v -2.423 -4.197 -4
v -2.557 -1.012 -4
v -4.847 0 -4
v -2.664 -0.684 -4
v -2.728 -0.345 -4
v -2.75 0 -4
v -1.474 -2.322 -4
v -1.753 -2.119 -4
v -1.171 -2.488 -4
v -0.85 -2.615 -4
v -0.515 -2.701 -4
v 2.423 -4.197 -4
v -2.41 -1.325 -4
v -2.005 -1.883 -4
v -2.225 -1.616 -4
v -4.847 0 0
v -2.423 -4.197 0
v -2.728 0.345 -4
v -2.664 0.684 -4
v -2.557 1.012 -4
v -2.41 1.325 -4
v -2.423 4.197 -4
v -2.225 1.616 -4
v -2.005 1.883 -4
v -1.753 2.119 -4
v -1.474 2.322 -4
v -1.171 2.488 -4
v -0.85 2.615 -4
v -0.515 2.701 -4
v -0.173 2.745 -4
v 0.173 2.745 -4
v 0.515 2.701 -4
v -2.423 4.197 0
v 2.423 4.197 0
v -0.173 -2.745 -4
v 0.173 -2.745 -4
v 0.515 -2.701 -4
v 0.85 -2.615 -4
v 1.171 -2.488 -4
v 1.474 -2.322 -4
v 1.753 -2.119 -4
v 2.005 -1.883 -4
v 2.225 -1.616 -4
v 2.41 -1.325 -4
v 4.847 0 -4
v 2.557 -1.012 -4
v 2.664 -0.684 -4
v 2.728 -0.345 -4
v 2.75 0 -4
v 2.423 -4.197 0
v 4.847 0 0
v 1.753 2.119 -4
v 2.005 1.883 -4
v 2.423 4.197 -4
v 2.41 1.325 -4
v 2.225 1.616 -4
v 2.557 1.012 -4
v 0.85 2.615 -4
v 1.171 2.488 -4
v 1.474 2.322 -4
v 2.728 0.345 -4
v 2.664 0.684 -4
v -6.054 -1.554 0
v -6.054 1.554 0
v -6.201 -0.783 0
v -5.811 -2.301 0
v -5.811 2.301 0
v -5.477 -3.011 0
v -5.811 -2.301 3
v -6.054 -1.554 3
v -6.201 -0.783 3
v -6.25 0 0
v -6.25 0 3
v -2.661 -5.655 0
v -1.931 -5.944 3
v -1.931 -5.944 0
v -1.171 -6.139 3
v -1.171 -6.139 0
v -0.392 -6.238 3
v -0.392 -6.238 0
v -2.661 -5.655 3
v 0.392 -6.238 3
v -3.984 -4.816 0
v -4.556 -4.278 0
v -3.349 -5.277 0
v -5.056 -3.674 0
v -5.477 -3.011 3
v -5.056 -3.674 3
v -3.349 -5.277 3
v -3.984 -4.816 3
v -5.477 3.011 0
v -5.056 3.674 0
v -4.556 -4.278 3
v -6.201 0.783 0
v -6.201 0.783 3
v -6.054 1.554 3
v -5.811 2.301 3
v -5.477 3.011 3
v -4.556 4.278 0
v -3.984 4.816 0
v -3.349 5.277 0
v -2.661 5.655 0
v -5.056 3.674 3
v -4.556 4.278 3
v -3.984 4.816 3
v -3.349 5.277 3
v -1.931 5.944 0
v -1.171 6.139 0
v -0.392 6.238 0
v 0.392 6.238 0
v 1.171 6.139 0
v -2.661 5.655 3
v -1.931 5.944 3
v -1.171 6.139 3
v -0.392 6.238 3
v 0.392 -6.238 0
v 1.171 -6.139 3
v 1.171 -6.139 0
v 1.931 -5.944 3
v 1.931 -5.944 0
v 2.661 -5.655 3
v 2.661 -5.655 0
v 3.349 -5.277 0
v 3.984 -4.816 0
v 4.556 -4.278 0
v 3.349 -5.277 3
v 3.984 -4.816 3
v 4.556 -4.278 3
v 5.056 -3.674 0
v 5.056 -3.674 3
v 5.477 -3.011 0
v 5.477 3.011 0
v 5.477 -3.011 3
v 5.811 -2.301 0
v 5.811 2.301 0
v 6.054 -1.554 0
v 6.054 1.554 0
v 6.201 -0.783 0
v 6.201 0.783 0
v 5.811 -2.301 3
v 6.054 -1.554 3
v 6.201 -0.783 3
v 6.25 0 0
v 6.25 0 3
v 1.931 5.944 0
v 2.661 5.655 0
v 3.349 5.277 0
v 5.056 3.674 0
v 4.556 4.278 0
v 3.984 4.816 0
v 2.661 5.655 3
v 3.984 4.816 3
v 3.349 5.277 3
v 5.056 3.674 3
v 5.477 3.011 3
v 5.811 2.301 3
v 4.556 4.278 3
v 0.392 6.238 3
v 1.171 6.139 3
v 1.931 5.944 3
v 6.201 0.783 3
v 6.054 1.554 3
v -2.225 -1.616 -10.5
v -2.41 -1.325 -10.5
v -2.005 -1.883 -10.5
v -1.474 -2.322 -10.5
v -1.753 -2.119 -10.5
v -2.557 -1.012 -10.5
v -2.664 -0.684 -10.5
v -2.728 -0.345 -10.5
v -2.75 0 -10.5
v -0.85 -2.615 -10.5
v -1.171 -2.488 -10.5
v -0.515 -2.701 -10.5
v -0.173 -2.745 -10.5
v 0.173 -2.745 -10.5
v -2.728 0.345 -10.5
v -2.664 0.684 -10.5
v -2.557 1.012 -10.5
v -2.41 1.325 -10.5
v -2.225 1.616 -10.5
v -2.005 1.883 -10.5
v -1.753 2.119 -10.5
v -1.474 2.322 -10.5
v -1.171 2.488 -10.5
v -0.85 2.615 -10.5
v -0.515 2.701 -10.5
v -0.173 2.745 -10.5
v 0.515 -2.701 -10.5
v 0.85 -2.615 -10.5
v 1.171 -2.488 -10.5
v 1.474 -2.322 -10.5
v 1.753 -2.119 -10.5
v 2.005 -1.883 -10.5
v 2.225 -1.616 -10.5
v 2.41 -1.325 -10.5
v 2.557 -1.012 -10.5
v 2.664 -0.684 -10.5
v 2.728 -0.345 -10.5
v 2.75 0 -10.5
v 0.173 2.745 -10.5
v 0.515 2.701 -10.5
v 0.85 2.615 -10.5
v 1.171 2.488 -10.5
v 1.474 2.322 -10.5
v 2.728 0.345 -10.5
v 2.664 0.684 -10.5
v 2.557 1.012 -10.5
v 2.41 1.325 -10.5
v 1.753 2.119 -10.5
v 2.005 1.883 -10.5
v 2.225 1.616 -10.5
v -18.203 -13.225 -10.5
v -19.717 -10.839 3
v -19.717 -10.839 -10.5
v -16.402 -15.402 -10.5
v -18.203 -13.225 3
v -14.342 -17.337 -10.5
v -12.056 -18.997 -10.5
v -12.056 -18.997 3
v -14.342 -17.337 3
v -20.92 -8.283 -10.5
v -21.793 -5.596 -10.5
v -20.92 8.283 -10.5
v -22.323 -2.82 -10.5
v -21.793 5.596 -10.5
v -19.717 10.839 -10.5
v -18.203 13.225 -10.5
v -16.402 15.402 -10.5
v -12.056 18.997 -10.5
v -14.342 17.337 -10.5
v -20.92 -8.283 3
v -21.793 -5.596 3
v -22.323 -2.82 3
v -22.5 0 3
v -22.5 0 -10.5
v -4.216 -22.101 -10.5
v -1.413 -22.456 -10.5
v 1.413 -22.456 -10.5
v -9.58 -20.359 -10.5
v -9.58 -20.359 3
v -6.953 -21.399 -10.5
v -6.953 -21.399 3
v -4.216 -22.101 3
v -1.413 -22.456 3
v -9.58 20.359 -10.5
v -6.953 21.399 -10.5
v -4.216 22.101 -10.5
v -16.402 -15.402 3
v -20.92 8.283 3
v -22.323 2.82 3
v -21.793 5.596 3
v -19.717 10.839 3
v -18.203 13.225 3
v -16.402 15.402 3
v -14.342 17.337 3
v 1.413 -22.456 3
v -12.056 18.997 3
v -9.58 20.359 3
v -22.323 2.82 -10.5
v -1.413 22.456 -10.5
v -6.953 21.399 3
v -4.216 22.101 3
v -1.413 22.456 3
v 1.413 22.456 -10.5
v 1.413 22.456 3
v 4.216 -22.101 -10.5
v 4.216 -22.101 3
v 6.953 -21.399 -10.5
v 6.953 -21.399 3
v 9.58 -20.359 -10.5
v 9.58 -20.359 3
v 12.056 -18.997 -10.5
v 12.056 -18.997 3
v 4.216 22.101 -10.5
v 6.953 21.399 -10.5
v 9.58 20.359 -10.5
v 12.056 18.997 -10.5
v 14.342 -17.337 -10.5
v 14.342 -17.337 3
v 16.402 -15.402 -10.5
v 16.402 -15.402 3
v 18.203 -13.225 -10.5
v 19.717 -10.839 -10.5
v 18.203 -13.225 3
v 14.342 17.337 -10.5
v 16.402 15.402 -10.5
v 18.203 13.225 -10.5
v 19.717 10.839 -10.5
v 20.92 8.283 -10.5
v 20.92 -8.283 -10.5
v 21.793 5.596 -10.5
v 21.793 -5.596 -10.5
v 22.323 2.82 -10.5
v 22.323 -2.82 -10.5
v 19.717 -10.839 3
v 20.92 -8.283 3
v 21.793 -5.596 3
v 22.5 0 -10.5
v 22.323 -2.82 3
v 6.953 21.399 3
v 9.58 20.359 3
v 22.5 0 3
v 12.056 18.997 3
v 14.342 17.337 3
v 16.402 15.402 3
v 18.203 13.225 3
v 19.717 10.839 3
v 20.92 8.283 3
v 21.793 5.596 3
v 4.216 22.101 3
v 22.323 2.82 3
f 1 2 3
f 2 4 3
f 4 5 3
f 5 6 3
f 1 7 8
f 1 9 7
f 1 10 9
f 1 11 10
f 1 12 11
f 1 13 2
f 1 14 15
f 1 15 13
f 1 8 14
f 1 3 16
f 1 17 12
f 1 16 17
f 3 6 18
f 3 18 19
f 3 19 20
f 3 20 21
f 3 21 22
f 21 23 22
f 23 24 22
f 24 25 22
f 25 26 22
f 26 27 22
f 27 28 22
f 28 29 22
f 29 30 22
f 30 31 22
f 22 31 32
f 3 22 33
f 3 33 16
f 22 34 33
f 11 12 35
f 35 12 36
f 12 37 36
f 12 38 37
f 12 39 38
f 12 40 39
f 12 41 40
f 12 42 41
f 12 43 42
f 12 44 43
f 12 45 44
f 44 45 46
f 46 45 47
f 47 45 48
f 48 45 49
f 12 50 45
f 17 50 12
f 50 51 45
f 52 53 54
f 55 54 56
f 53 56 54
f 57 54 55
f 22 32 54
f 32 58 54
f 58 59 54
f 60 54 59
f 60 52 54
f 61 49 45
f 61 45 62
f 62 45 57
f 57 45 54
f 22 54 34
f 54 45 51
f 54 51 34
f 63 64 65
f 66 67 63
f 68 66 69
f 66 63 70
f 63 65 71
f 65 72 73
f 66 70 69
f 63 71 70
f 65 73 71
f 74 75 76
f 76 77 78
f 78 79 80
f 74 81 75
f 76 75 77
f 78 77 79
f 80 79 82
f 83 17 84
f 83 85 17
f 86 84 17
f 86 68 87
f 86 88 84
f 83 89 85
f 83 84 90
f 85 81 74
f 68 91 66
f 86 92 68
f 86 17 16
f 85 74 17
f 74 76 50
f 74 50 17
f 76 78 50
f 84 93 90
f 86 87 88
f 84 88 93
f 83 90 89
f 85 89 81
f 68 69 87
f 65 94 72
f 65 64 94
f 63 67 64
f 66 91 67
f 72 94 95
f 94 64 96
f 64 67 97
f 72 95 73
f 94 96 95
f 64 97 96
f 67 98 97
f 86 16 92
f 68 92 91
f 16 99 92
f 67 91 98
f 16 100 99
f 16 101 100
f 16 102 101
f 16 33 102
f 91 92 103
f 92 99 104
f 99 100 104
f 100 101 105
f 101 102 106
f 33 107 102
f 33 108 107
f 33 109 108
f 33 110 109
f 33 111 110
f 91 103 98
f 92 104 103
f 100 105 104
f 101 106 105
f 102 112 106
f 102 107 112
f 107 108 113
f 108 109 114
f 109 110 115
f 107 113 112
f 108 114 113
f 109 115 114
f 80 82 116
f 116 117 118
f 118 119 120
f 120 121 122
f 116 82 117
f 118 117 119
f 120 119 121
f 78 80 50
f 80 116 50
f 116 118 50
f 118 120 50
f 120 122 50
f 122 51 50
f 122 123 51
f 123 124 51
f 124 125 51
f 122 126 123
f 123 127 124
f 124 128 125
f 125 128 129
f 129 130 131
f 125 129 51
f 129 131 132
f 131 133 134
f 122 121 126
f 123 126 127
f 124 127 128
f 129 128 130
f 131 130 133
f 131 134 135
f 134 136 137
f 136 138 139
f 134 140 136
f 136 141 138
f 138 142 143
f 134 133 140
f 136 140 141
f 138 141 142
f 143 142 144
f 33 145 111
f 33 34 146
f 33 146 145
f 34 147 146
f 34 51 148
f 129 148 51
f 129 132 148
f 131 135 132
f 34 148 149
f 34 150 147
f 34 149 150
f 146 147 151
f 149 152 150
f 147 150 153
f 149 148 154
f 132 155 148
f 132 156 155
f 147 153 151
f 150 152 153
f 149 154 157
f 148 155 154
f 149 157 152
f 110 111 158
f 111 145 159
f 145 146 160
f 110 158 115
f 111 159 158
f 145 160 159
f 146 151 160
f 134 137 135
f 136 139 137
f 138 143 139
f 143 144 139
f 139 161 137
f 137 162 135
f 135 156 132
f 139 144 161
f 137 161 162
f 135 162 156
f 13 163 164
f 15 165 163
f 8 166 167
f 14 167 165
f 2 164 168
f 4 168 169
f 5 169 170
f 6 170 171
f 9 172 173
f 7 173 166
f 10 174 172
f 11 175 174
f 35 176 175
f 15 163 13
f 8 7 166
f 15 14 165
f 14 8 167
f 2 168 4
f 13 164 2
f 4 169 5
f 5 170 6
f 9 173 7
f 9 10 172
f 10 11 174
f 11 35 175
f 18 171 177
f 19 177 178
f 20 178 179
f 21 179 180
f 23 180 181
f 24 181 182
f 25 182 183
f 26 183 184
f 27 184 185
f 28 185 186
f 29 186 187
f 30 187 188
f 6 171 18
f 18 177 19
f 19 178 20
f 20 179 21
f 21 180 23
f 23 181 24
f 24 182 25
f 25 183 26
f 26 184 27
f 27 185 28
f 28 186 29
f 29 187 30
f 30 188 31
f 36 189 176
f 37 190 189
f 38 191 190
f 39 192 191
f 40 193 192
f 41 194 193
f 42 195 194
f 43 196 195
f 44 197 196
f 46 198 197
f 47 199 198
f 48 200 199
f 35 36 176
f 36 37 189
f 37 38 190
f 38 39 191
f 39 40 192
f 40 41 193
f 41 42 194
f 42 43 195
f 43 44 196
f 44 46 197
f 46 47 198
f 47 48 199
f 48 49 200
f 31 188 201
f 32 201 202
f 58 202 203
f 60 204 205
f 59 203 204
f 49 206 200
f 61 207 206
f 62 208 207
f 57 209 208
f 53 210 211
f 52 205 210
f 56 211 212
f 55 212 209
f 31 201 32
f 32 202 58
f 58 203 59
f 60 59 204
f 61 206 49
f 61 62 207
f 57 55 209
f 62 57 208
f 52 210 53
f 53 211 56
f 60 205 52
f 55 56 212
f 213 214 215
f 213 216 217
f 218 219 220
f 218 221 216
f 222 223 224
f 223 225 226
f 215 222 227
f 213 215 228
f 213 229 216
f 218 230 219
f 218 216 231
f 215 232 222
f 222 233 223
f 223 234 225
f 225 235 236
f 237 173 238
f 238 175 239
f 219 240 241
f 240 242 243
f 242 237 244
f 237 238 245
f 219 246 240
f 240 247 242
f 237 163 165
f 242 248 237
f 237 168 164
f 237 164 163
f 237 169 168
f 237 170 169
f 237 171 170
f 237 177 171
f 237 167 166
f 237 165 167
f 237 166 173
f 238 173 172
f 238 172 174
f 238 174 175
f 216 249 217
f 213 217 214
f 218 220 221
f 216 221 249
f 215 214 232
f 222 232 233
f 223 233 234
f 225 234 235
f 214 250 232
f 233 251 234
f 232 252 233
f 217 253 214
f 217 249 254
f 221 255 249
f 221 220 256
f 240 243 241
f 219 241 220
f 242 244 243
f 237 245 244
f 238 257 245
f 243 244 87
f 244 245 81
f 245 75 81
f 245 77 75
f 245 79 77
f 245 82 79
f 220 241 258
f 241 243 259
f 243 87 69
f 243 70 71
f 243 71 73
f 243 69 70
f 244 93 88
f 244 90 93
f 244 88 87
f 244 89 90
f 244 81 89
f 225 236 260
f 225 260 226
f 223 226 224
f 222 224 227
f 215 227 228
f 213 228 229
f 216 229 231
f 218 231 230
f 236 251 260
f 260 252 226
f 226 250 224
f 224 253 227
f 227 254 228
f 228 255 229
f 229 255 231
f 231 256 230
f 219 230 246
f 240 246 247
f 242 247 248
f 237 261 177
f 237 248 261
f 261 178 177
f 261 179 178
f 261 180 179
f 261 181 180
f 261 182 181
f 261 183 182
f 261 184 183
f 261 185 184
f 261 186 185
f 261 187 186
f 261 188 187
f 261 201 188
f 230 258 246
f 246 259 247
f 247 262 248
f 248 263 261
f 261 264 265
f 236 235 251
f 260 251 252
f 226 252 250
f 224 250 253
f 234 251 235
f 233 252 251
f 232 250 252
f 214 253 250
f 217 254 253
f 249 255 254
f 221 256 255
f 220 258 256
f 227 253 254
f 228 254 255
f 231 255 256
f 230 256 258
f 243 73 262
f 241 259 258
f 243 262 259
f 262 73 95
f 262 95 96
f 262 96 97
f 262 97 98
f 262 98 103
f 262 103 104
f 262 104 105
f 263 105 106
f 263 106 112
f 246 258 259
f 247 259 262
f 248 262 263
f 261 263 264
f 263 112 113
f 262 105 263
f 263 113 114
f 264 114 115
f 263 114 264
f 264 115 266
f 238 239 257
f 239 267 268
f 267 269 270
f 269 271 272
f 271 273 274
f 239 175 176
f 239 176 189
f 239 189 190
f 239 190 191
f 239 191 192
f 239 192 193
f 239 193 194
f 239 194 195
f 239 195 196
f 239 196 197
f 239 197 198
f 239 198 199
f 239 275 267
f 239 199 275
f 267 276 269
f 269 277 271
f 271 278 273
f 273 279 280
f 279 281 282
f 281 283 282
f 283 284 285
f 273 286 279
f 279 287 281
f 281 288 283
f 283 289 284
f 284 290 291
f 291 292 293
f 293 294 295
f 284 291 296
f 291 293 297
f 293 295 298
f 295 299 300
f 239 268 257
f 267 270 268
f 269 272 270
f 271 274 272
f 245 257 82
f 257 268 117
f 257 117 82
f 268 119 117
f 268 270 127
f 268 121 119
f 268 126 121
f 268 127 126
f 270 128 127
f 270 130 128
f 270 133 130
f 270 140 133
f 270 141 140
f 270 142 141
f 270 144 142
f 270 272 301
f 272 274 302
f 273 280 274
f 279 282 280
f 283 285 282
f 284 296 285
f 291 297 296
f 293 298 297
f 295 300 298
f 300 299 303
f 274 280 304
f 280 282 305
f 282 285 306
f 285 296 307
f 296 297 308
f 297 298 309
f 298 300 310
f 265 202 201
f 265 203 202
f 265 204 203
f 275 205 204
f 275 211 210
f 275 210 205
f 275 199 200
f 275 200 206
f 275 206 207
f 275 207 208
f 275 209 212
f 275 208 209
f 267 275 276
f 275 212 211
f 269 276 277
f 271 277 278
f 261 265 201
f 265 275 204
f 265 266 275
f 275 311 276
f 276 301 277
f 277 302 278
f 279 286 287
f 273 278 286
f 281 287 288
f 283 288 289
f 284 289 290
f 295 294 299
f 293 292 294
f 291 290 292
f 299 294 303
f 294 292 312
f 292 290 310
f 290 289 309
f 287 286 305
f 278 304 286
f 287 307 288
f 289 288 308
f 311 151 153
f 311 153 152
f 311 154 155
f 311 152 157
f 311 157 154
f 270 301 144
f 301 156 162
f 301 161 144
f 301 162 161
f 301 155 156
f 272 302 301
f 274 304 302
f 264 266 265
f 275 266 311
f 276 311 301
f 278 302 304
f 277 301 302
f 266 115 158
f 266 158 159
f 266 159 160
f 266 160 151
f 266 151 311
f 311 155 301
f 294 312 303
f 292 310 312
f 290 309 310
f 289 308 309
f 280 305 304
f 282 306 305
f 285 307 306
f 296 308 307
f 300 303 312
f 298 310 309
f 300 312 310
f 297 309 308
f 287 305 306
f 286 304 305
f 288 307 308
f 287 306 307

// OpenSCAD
$fn = 50;

difference() {
	union() {
		translate(v = [0, 0, -10.5]) {
			cylinder(h = 13.5, r = 22.5);
		}
	}
	union() {
		translate(v = [0, 0, 0]) {
			rotate(a = [0, 0, 0]) {
				difference() {
					union() {
						translate(v = [0, 0, -4]) {
							linear_extrude(height = 4) {
								polygon(points = [[4.8468, 0.0], [2.4234000000000004, 4.197451927062417], [-2.423399999999999, 4.197451927062417], [-4.8468, 5.935618106107392e-16], [-2.423400000000002, -4.197451927062416], [2.423399999999997, -4.197451927062419]]);
							}
						}
					}
					union();
				}
			}
		}
		#cylinder(h = 3, r = 6.25);
		#translate(v = [0, 0, -100.0]) {
			cylinder(h = 200, r = 2.75);
		}
	}
}
